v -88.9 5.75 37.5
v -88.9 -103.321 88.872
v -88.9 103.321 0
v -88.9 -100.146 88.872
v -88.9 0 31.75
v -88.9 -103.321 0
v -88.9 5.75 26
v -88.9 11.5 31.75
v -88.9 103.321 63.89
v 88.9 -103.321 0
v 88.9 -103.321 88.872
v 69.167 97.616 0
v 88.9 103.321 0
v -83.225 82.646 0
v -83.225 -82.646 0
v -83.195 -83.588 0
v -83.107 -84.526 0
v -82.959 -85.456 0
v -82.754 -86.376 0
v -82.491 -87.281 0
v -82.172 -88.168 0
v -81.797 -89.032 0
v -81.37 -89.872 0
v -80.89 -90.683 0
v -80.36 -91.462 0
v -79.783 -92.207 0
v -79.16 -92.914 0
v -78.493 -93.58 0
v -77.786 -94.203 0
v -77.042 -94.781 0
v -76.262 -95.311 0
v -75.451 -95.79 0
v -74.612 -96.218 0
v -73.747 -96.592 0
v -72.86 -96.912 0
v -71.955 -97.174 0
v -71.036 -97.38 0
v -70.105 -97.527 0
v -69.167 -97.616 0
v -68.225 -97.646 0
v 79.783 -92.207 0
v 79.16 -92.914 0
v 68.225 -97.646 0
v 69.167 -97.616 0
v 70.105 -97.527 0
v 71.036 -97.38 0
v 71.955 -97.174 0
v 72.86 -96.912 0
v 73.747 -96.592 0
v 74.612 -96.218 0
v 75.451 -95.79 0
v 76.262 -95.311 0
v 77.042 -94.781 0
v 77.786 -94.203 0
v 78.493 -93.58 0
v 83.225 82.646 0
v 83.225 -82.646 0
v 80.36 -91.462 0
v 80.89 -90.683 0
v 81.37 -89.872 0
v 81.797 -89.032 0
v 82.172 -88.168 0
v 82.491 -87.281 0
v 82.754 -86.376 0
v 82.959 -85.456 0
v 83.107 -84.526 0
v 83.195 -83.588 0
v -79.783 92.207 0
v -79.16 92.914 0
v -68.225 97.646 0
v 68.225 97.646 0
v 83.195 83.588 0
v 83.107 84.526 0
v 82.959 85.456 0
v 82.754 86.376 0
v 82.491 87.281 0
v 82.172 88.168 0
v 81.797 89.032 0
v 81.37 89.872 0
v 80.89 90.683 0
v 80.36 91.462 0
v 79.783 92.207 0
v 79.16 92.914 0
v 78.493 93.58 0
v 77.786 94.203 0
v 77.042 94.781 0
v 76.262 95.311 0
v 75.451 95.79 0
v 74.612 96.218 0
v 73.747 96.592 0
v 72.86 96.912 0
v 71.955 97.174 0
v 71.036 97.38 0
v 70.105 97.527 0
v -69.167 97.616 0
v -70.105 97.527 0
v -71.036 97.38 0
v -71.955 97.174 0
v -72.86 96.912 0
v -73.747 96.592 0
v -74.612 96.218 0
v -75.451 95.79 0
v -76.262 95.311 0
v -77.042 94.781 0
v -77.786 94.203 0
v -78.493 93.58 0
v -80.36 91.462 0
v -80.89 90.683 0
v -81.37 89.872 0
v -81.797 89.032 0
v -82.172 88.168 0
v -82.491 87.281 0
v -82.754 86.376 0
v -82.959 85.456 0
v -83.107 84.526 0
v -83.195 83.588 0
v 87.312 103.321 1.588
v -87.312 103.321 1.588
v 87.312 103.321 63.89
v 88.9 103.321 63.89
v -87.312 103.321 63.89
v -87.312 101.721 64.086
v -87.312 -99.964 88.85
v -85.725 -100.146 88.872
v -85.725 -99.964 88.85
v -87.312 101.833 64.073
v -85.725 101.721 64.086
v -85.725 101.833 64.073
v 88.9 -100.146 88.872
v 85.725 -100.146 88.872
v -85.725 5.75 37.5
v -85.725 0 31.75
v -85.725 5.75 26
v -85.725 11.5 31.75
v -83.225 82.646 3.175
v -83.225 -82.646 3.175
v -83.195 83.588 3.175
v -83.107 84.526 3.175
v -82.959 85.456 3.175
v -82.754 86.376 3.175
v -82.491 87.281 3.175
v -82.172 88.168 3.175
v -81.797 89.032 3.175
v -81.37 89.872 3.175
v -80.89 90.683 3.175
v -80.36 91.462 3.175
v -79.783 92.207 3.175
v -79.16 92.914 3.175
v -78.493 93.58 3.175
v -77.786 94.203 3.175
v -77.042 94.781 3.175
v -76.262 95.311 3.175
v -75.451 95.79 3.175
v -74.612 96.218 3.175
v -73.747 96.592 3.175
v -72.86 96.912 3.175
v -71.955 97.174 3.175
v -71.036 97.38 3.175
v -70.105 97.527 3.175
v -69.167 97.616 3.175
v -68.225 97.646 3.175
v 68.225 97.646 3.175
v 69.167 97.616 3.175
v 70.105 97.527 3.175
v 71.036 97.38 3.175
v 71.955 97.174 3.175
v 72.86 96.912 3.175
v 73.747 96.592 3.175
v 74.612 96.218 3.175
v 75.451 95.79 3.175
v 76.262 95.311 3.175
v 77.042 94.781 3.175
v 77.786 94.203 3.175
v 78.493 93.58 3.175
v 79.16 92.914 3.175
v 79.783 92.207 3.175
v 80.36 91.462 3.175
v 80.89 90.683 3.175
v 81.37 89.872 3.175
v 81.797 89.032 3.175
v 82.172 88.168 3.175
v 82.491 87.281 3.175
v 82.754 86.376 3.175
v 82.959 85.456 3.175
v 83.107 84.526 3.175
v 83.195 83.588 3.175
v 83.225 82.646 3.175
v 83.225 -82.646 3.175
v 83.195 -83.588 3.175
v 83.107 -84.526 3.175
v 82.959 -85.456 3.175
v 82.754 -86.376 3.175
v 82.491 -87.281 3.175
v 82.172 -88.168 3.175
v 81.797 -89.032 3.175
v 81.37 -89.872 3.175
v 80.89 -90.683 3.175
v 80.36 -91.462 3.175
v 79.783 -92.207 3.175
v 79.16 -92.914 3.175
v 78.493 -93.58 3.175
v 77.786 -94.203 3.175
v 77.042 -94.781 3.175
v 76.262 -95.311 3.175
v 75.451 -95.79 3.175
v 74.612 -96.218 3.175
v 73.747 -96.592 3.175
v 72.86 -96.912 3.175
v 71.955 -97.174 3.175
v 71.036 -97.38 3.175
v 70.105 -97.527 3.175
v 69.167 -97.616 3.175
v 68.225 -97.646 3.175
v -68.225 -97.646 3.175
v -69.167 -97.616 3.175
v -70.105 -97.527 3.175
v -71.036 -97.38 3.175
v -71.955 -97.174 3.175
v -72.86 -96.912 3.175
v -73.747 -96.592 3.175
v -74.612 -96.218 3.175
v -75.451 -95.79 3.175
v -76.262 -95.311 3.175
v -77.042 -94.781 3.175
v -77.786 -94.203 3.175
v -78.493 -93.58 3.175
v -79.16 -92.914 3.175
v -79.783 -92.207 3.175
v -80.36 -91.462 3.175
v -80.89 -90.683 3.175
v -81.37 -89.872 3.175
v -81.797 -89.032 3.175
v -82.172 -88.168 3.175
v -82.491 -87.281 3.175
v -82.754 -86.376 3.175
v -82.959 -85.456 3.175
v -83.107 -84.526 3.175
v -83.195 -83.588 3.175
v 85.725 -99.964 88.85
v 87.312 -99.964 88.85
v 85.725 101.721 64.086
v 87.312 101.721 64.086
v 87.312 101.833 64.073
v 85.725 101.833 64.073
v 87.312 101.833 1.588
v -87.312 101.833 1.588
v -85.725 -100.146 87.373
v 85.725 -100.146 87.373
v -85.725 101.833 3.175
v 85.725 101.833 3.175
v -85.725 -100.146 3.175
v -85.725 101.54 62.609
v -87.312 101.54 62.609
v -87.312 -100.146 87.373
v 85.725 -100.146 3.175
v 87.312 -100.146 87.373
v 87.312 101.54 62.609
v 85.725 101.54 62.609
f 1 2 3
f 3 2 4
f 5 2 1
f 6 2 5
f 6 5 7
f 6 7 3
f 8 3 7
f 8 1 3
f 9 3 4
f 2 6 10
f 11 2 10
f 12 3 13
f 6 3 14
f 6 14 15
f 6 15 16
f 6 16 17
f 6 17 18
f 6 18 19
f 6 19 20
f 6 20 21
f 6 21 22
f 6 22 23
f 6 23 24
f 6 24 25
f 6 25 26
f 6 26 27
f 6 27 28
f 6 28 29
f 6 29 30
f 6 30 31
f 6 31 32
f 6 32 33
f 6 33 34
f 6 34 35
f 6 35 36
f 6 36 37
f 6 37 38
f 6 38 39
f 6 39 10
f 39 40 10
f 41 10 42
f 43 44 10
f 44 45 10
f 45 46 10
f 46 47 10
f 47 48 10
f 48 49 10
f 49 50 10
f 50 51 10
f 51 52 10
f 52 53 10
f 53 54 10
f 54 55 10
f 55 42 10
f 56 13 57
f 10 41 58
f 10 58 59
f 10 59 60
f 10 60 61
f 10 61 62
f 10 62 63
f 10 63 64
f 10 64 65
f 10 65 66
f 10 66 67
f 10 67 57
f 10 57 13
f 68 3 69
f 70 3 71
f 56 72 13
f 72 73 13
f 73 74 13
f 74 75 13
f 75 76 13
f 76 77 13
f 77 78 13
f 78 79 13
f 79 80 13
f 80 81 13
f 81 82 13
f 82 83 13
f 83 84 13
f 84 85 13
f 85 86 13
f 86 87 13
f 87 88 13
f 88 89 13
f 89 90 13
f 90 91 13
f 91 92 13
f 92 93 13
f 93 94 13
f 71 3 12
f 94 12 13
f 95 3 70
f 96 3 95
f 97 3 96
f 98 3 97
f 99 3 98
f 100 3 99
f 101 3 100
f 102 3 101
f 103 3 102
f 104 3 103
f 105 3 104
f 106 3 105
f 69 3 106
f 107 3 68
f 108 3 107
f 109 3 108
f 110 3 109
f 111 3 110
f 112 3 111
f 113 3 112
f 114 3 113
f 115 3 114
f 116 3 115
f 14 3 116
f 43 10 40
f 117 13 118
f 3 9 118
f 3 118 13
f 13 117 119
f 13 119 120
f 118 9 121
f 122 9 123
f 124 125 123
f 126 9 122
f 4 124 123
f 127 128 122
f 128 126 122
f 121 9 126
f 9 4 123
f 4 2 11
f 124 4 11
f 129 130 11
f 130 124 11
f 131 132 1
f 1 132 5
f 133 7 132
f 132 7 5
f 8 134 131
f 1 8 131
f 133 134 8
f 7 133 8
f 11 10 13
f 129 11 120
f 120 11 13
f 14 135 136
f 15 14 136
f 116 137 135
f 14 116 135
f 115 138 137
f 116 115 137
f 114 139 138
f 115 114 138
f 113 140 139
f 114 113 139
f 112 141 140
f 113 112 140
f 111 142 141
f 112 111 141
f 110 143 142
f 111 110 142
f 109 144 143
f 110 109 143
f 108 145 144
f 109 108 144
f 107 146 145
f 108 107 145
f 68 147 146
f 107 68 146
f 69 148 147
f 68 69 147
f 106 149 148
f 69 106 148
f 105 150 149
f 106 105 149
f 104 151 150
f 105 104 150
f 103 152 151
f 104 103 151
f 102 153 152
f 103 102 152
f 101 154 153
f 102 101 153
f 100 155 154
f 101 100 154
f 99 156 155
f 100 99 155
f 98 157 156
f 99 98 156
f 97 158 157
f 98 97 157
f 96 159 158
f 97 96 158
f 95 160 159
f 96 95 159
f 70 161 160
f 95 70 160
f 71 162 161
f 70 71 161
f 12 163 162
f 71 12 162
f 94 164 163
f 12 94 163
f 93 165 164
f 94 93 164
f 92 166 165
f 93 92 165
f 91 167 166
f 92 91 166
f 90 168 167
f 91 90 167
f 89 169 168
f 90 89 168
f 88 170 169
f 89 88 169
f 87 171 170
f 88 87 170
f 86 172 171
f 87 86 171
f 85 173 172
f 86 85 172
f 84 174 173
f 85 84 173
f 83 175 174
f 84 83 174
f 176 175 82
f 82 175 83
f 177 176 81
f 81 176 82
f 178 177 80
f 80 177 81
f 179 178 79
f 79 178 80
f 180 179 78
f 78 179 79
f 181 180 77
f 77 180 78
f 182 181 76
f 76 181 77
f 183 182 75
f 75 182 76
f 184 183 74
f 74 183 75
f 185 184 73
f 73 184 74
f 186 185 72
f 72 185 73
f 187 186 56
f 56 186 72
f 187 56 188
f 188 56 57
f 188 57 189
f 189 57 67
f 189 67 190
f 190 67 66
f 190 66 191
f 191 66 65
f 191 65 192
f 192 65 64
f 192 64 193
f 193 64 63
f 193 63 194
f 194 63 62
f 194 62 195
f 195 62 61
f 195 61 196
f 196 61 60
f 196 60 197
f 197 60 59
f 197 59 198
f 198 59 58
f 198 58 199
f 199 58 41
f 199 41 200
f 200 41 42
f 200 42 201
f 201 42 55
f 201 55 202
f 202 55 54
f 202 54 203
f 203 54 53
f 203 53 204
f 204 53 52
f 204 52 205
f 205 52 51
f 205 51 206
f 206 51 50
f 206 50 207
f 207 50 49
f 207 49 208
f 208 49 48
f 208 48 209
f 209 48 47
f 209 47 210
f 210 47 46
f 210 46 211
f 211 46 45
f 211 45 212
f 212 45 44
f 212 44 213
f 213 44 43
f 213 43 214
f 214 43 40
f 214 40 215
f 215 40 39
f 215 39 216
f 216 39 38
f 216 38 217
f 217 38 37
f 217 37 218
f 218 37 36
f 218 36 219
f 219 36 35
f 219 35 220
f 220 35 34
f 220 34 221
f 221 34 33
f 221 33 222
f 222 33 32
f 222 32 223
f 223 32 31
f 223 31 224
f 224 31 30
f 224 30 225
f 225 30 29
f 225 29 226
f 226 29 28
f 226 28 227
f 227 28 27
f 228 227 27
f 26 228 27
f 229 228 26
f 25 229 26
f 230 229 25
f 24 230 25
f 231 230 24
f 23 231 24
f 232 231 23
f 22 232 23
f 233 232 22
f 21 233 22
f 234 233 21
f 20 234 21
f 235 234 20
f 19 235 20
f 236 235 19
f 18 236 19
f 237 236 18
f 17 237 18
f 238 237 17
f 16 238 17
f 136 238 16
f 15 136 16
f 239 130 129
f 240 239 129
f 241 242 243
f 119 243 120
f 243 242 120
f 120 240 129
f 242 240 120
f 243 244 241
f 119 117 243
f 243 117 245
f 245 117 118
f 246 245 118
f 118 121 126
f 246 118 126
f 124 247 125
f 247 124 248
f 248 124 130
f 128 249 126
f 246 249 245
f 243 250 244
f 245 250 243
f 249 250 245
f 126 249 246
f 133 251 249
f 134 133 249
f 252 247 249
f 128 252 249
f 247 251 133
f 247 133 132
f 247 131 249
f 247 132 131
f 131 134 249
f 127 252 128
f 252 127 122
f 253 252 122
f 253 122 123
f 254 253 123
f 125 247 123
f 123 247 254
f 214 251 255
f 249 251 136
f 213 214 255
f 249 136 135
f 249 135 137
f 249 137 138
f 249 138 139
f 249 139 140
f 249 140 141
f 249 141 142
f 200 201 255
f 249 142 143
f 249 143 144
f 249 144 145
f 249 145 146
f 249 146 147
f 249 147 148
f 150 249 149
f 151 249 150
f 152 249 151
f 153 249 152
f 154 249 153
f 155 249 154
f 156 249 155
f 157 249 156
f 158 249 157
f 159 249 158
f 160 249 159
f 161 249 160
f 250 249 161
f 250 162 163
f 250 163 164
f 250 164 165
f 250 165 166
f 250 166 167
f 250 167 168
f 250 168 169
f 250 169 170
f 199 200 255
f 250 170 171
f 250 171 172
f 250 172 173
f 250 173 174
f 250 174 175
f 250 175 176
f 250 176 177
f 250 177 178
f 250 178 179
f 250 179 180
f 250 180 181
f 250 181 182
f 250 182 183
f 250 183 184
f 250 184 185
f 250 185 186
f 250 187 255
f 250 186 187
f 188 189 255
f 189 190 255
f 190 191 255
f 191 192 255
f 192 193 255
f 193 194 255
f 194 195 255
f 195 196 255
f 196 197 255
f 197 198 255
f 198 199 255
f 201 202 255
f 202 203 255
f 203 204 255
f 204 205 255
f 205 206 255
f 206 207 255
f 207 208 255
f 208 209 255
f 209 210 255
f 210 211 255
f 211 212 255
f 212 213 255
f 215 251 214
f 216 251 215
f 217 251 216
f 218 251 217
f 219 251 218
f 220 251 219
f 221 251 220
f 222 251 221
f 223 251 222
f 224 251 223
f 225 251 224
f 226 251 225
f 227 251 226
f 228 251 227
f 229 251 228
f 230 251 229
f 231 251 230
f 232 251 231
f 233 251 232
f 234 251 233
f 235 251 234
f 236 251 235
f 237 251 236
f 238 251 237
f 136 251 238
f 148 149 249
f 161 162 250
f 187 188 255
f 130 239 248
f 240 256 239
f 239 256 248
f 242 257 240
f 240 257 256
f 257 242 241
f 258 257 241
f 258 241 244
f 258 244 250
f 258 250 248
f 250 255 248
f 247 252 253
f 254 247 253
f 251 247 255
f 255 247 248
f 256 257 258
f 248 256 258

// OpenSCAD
// file: ../includes/TextGenerator.scad
//Draw text
scale([4,4,4]) drawtext("Hello World!");

//Draw character set
//scale([2,2,2]) drawtext(" !\"#$%&'()*+,-./0123456789:;<=>?@ABCDEFGHIJKLMNOPQRSTUVWXYZ[\\]^_`abcdefghijklmnopqrstuvwxyz{|}");

module drawtext(text) {
	//Characters
	chars = " !\"#$%&'()*+,-./0123456789:;<=>?@ABCDEFGHIJKLMNOPQRSTUVWXYZ[\\]^_`abcdefghijklmnopqrstuvwxyz{|}";

	//Chracter table defining 5x7 characters
	//Adapted from: http://www.geocities.com/dinceraydin/djlcdsim/chartable.js
	char_table = [ [ 0, 0, 0, 0, 0, 0, 0],
                  [ 4, 0, 4, 4, 4, 4, 4],
                  [ 0, 0, 0, 0,10,10,10],
                  [10,10,31,10,31,10,10],
                  [ 4,30, 5,14,20,15, 4],
                  [ 3,19, 8, 4, 2,25,24],
                  [13,18,21, 8,20,18,12],
                  [ 0, 0, 0, 0, 8, 4,12],
                  [ 2, 4, 8, 8, 8, 4, 2],
                  [ 8, 4, 2, 2, 2, 4, 8],
                  [ 0, 4,21,14,21, 4, 0],
                  [ 0, 4, 4,31, 4, 4, 0],
                  [ 8, 4,12, 0, 0, 0, 0],
                  [ 0, 0, 0,31, 0, 0, 0],
                  [12,12, 0, 0, 0, 0, 0],
                  [ 0,16, 8, 4, 2, 1, 0],
                  [14,17,25,21,19,17,14],
                  [14, 4, 4, 4, 4,12, 4],
                  [31, 8, 4, 2, 1,17,14],
                  [14,17, 1, 2, 4, 2,31],
                  [ 2, 2,31,18,10, 6, 2],
                  [14,17, 1, 1,30,16,31],
                  [14,17,17,30,16, 8, 6],
                  [ 8, 8, 8, 4, 2, 1,31],
                  [14,17,17,14,17,17,14],
                  [12, 2, 1,15,17,17,14],
                  [ 0,12,12, 0,12,12, 0],
                  [ 8, 4,12, 0,12,12, 0],
                  [ 2, 4, 8,16, 8, 4, 2],
                  [ 0, 0,31, 0,31, 0, 0],
                  [16, 8, 4, 2, 4, 8,16],
                  [ 4, 0, 4, 2, 1,17,14],
                  [14,21,21,13, 1,17,14],
                  [17,17,31,17,17,17,14],
                  [30,17,17,30,17,17,30],
                  [14,17,16,16,16,17,14],
                  [30,17,17,17,17,17,30],
                  [31,16,16,30,16,16,31],
                  [16,16,16,30,16,16,31],
                  [15,17,17,23,16,17,14],
                  [17,17,17,31,17,17,17],
                  [14, 4, 4, 4, 4, 4,14],
                  [12,18, 2, 2, 2, 2, 7],
                  [17,18,20,24,20,18,17],
                  [31,16,16,16,16,16,16],
                  [17,17,17,21,21,27,17],
                  [17,17,19,21,25,17,17],
                  [14,17,17,17,17,17,14],
                  [16,16,16,30,17,17,30],
                  [13,18,21,17,17,17,14],
                  [17,18,20,30,17,17,30],
                  [30, 1, 1,14,16,16,15],
                  [ 4, 4, 4, 4, 4, 4,31],
                  [14,17,17,17,17,17,17],
                  [ 4,10,17,17,17,17,17],
                  [10,21,21,21,17,17,17],
                  [17,17,10, 4,10,17,17],
                  [ 4, 4, 4,10,17,17,17],
                  [31,16, 8, 4, 2, 1,31],
                  [14, 8, 8, 8, 8, 8,14],
                  [ 0, 1, 2, 4, 8,16, 0],
                  [14, 2, 2, 2, 2, 2,14],
                  [ 0, 0, 0, 0,17,10, 4],
                  [31, 0, 0, 0, 0, 0, 0],
                  [ 0, 0, 0, 0, 2, 4, 8],
                  [15,17,15, 1,14, 0, 0],
                  [30,17,17,25,22,16,16],
                  [14,17,16,16,14, 0, 0],
                  [15,17,17,19,13, 1, 1],
                  [14,16,31,17,14, 0, 0],
                  [ 8, 8, 8,28, 8, 9, 6],
                  [14, 1,15,17,15, 0, 0],
                  [17,17,17,25,22,16,16],
                  [14, 4, 4, 4,12, 0, 4],
                  [12,18, 2, 2, 2, 6, 2],
                  [18,20,24,20,18,16,16],
                  [14, 4, 4, 4, 4, 4,12],
                  [17,17,21,21,26, 0, 0],
                  [17,17,17,25,22, 0, 0],
                  [14,17,17,17,14, 0, 0],
                  [16,16,30,17,30, 0, 0],
                  [ 1, 1,15,19,13, 0, 0],
                  [16,16,16,25,22, 0, 0],
                  [30, 1,14,16,15, 0, 0],
                  [ 6, 9, 8, 8,28, 8, 8],
                  [13,19,17,17,17, 0, 0],
                  [ 4,10,17,17,17, 0, 0],
                  [10,21,21,17,17, 0, 0],
                  [17,10, 4,10,17, 0, 0],
                  [14, 1,15,17,17, 0, 0],
                  [31, 8, 4, 2,31, 0, 0],
                  [ 2, 4, 4, 8, 4, 4, 2],
                  [ 4, 4, 4, 4, 4, 4, 4],
                  [ 8, 4, 4, 2, 4, 4, 8] ];

	//Binary decode table
	dec_table = [ "00000", "00001", "00010", "00011", "00100", "00101",
  	            "00110", "00111", "01000", "01001", "01010", "01011",
  	            "01100", "01101", "01110", "01111", "10000", "10001",
  	            "10010", "10011", "10100", "10101", "10110", "10111",
	            "11000", "11001", "11010", "11011", "11100", "11101",
	            "11110", "11111" ];

	//Process string one character at a time
	for(itext = [0:len(text)-1]) {
		//Convert character to index
		ichar = search(text[itext],chars,1)[0];

        //Decode character - rows
        for(irow = [0:6]) {
            //Select value to draw from table
            val = dec_table[char_table[ichar][irow]];

            //Decode character - cols
            for(icol = [0:4]) {
                // Retrieve bit to draw
                bit = search(val[icol],"01",1)[0];

                if(bit) {
                    //Output cube
                    translate([icol + (6*itext), irow, 0])
                        cube([1.0001,1.0001,1]);
                }
            }
        }
	}
}
// main file
use <../includes/dimlines.scad>		// from Don Smiley at http://www.cannymachines.com/entries/9/openscad_dimensioned_drawings
									// text generation from PGreenland at http://www.thingiverse.com/thing:59817  Creative Commons-Attribution-Share Alike

// associate index to axis
X = 0;
Y = 1;
Z = 2;

// measurements in inches
Wall_thickness = 0.125;
slope = 7;
Size_of_Top_Plate = [6.875, 8, 0.0625];
Size_of_Plug_Board = [6.875, 2.4375, 0.0625];
Size_of_Internal_Box = [Size_of_Top_Plate[X] + Wall_thickness, Size_of_Top_Plate[Y]*cos(slope) + Wall_thickness/2 + Size_of_Top_Plate[Z]*sin(slope) + Wall_thickness, Size_of_Plug_Board[Y]+ Wall_thickness/2];

// convert to millimeters
t = Wall_thickness * 25.4;
TPL = Size_of_Top_Plate * 25.4;
IB = Size_of_Internal_Box * 25.4;
PB = Size_of_Plug_Board * 25.4;
USBplug = [ 11.5, 10.5 ];

module roundCorners(outerX, outerY, roundedCornerRadius, ledge) {
	$fn=100;
	translate( [ roundedCornerRadius + ledge/2, roundedCornerRadius + ledge/2, 0] ) minkowski() {
		cube([outerX-2*roundedCornerRadius-ledge, outerY-2*roundedCornerRadius-ledge, t]);
		cylinder( r=roundedCornerRadius, h=0.2 );
	}
}

module backPlate() {
	cube([ IB[X], t, IB[Z]+IB[Y]*tan(slope) ]);
}

module sidePlate() {
	difference() {
		cube([t, IB[Y], IB[Z]+IB[Y]*tan(slope) ]);
		translate([ -t/2, t, IB[Z]+IB[Y]*tan(slope) ]) rotate([ -slope, 0, 0 ]) cube([ 2*t, IB[Y]/cos(slope), IB[Y]*sin(slope) ]);
	}
}

module bottomPlate() {
	cube([IB[X], IB[Y], t]);
}

module internalBox() {
	difference() {
		union() {
			backPlate();
			sidePlate();
			translate([IB[X], 0, 0]) mirror([1, 0, 0]) sidePlate();
			bottomPlate();
		}
		translate([ t/2, t, IB[Z]-TPL[Z]/cos(slope)+IB[Y]*tan(slope)+0.1 ]) rotate([-slope, 0, 0]) cube(TPL);				//topPlate cutout
		translate([ t/2, IB[Y]+0.1, t/2 ]) rotate([90, 0, 0]) cube([PB[X],PB[Y]+ 2,PB[Z]]);									//plugBoard cutout
		translate([ t, t, -0.1 ]) roundCorners( outerX=IB[X]-2*t, outerY=IB[Y]-2*t, roundedCornerRadius=15, ledge=5);		//bottomPlate cutout
		translate( [-t/2, IB[Y]/2, IB[Z]/2] ) rotate( [90, 45 , 90] )														//USB plug cutout
			cube( [sqrt(2)/2*USBplug[X], sqrt(2)/2*USBplug[X], 2*t ]);
	}
}

translate ([-IB[X]/2, -IB[Y]/2, 0]) internalBox();
//sample_dimensions();
